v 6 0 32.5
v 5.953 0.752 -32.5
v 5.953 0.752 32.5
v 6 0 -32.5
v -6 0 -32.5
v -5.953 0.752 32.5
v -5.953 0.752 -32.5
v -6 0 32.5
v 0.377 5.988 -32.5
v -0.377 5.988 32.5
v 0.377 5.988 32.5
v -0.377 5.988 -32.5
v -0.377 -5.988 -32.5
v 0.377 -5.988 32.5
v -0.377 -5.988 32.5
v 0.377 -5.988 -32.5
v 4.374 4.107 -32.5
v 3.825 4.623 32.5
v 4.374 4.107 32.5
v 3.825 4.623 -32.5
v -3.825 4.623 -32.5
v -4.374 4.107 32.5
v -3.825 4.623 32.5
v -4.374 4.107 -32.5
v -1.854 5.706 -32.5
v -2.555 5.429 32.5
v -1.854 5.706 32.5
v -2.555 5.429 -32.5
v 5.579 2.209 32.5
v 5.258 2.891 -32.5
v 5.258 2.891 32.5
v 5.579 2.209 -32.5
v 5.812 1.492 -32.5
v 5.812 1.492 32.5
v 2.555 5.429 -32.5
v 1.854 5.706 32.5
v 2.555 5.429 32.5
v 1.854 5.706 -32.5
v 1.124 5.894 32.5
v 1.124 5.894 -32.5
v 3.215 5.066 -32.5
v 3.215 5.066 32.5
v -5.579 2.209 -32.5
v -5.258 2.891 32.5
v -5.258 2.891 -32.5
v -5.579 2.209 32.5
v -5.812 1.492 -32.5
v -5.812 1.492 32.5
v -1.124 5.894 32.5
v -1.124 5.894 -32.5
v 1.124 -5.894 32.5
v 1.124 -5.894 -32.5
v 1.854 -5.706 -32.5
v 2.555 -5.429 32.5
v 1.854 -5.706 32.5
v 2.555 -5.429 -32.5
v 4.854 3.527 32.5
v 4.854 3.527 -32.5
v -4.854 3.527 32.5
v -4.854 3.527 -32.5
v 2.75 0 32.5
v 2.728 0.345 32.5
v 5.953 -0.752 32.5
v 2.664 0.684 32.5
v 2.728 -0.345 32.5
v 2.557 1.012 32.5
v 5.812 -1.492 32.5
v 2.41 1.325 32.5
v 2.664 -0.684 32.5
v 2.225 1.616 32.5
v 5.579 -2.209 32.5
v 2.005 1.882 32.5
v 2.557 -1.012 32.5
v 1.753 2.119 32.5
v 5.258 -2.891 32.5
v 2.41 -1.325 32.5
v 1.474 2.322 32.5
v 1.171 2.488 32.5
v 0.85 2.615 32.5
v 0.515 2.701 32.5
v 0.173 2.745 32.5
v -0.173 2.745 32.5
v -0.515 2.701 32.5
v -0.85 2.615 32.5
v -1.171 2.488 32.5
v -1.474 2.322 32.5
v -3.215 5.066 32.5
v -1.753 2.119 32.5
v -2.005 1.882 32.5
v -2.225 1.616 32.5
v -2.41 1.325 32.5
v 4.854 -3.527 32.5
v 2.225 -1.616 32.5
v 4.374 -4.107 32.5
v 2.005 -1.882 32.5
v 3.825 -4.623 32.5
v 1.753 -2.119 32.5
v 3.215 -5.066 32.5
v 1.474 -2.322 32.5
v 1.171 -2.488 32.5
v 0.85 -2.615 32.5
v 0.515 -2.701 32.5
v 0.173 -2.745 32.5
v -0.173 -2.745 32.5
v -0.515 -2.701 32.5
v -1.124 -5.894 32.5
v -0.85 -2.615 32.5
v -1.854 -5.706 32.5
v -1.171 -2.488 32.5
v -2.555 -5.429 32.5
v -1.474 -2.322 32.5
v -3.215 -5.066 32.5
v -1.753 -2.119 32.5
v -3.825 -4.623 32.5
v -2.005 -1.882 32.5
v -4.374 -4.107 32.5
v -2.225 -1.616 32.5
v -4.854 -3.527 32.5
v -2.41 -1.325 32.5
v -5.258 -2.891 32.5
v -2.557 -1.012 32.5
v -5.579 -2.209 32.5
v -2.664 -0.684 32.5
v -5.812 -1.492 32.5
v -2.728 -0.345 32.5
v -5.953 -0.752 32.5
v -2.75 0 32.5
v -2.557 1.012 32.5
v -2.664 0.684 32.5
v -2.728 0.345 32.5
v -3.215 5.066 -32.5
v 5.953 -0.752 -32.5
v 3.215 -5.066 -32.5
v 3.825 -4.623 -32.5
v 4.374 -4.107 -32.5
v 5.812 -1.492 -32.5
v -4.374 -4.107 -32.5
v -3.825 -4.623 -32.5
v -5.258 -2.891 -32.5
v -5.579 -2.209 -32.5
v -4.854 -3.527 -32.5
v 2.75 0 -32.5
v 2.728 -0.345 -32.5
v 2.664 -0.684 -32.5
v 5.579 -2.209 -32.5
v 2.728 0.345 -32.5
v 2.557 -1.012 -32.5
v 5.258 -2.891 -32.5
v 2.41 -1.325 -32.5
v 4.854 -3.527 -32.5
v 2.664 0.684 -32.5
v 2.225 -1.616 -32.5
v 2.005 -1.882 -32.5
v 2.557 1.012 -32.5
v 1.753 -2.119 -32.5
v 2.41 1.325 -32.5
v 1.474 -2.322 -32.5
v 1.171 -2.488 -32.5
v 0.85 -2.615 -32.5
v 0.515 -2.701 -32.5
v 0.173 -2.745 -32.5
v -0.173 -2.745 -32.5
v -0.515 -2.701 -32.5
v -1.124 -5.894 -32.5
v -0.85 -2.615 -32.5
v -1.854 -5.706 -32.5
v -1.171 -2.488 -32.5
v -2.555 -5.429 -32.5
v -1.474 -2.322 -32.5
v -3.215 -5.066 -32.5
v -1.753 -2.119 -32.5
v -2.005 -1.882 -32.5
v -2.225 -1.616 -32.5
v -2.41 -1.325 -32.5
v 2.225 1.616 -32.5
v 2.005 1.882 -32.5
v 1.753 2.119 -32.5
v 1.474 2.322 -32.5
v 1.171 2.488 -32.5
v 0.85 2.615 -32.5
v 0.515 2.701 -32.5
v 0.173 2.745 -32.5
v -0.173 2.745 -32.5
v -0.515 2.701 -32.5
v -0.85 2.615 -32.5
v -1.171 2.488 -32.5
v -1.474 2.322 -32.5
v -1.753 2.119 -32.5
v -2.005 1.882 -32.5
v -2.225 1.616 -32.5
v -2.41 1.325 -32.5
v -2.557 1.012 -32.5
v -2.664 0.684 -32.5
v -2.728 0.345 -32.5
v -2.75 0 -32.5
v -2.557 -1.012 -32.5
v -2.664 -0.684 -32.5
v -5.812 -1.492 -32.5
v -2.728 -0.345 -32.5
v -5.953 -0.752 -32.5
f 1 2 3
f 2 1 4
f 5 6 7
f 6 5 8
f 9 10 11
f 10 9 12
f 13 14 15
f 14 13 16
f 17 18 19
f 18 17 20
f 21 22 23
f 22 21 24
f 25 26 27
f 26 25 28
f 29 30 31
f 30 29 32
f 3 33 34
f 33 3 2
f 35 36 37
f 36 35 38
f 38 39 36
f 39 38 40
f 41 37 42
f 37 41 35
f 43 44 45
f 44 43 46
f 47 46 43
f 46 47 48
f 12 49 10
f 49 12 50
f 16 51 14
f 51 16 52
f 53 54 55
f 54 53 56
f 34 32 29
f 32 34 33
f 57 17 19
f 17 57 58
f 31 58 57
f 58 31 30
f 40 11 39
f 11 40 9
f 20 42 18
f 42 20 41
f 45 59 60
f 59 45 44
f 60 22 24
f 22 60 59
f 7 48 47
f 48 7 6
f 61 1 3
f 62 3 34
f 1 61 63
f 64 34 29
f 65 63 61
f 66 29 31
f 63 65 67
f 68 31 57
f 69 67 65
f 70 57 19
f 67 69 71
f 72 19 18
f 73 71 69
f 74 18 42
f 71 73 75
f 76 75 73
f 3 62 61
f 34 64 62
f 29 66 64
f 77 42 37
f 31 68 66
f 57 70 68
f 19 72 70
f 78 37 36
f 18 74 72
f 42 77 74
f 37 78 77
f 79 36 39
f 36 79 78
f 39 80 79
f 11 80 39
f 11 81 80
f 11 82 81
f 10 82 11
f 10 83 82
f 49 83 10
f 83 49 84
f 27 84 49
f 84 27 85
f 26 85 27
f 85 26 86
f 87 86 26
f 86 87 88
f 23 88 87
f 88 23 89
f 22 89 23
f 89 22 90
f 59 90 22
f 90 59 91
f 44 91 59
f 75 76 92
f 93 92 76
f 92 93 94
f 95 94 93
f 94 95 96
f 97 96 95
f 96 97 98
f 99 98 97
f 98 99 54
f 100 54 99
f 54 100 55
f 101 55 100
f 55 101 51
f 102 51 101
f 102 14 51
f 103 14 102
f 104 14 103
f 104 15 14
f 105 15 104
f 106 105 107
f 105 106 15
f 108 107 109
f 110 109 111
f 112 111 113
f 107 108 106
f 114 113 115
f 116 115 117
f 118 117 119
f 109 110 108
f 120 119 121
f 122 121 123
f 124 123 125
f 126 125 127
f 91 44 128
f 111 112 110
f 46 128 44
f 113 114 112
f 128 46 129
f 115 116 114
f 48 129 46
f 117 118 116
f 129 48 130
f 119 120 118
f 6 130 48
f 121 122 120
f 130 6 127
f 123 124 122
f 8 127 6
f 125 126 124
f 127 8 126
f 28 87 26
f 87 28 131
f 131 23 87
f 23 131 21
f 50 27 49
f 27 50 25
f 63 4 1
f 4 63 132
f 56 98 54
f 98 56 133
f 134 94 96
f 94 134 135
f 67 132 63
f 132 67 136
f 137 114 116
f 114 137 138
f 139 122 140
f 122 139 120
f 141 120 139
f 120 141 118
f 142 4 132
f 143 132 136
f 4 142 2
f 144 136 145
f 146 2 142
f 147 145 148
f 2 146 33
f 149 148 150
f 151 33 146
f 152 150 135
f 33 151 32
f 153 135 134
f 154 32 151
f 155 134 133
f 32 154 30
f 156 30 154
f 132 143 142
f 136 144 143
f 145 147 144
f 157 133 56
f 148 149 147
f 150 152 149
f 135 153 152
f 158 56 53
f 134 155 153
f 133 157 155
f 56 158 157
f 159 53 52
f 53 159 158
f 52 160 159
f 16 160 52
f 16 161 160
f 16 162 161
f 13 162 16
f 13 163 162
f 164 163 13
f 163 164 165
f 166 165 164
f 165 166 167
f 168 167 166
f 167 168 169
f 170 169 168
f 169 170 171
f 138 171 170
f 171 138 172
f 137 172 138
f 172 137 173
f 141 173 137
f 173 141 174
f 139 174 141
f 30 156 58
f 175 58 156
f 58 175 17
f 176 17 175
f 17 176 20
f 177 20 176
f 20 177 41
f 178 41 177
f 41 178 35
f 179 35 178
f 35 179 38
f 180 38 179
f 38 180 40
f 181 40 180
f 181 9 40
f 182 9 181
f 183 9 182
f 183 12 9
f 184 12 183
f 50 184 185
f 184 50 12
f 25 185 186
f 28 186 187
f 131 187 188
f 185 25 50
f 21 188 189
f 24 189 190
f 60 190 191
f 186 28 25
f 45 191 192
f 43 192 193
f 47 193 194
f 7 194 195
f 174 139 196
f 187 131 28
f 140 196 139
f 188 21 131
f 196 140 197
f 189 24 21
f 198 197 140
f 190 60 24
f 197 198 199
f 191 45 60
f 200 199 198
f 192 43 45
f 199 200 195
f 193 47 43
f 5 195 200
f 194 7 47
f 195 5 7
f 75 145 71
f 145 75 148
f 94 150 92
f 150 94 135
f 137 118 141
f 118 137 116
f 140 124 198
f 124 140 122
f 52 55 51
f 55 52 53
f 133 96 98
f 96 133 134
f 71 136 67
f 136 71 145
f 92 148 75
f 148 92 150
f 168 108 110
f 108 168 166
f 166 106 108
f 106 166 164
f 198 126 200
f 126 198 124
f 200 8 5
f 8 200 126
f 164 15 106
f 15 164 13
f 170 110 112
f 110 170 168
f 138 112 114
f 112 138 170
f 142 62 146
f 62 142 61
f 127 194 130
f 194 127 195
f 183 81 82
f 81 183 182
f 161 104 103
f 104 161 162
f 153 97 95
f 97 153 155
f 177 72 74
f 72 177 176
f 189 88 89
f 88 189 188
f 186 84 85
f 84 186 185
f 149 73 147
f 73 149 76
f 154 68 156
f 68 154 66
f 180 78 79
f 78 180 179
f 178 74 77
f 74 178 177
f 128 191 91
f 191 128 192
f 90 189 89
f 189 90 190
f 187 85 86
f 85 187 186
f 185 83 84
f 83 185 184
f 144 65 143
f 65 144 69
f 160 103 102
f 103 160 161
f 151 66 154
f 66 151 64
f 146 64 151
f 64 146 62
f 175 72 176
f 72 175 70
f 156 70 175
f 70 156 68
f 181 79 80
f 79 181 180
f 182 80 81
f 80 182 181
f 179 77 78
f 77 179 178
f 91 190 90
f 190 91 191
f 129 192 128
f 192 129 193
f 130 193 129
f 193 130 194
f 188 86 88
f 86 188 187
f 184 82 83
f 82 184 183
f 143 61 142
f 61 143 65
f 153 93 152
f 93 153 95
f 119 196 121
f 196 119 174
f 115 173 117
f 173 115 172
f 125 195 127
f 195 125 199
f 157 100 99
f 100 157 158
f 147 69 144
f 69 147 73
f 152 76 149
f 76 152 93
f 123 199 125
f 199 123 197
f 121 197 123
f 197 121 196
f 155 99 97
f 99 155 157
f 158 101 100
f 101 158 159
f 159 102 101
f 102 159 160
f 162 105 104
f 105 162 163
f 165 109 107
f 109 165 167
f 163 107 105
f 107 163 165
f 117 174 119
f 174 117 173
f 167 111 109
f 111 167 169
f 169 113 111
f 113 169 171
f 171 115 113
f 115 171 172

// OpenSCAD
$fn = 50;


difference() {
	union() {
		translate(v = [0, 0, -32.5000000000]) {
			cylinder(h = 65, r = 6.0000000000);
		}
	}
	union() {
		translate(v = [0, 0, -100.0000000000]) {
			cylinder(h = 200, r = 2.7500000000);
		}
	}
}
